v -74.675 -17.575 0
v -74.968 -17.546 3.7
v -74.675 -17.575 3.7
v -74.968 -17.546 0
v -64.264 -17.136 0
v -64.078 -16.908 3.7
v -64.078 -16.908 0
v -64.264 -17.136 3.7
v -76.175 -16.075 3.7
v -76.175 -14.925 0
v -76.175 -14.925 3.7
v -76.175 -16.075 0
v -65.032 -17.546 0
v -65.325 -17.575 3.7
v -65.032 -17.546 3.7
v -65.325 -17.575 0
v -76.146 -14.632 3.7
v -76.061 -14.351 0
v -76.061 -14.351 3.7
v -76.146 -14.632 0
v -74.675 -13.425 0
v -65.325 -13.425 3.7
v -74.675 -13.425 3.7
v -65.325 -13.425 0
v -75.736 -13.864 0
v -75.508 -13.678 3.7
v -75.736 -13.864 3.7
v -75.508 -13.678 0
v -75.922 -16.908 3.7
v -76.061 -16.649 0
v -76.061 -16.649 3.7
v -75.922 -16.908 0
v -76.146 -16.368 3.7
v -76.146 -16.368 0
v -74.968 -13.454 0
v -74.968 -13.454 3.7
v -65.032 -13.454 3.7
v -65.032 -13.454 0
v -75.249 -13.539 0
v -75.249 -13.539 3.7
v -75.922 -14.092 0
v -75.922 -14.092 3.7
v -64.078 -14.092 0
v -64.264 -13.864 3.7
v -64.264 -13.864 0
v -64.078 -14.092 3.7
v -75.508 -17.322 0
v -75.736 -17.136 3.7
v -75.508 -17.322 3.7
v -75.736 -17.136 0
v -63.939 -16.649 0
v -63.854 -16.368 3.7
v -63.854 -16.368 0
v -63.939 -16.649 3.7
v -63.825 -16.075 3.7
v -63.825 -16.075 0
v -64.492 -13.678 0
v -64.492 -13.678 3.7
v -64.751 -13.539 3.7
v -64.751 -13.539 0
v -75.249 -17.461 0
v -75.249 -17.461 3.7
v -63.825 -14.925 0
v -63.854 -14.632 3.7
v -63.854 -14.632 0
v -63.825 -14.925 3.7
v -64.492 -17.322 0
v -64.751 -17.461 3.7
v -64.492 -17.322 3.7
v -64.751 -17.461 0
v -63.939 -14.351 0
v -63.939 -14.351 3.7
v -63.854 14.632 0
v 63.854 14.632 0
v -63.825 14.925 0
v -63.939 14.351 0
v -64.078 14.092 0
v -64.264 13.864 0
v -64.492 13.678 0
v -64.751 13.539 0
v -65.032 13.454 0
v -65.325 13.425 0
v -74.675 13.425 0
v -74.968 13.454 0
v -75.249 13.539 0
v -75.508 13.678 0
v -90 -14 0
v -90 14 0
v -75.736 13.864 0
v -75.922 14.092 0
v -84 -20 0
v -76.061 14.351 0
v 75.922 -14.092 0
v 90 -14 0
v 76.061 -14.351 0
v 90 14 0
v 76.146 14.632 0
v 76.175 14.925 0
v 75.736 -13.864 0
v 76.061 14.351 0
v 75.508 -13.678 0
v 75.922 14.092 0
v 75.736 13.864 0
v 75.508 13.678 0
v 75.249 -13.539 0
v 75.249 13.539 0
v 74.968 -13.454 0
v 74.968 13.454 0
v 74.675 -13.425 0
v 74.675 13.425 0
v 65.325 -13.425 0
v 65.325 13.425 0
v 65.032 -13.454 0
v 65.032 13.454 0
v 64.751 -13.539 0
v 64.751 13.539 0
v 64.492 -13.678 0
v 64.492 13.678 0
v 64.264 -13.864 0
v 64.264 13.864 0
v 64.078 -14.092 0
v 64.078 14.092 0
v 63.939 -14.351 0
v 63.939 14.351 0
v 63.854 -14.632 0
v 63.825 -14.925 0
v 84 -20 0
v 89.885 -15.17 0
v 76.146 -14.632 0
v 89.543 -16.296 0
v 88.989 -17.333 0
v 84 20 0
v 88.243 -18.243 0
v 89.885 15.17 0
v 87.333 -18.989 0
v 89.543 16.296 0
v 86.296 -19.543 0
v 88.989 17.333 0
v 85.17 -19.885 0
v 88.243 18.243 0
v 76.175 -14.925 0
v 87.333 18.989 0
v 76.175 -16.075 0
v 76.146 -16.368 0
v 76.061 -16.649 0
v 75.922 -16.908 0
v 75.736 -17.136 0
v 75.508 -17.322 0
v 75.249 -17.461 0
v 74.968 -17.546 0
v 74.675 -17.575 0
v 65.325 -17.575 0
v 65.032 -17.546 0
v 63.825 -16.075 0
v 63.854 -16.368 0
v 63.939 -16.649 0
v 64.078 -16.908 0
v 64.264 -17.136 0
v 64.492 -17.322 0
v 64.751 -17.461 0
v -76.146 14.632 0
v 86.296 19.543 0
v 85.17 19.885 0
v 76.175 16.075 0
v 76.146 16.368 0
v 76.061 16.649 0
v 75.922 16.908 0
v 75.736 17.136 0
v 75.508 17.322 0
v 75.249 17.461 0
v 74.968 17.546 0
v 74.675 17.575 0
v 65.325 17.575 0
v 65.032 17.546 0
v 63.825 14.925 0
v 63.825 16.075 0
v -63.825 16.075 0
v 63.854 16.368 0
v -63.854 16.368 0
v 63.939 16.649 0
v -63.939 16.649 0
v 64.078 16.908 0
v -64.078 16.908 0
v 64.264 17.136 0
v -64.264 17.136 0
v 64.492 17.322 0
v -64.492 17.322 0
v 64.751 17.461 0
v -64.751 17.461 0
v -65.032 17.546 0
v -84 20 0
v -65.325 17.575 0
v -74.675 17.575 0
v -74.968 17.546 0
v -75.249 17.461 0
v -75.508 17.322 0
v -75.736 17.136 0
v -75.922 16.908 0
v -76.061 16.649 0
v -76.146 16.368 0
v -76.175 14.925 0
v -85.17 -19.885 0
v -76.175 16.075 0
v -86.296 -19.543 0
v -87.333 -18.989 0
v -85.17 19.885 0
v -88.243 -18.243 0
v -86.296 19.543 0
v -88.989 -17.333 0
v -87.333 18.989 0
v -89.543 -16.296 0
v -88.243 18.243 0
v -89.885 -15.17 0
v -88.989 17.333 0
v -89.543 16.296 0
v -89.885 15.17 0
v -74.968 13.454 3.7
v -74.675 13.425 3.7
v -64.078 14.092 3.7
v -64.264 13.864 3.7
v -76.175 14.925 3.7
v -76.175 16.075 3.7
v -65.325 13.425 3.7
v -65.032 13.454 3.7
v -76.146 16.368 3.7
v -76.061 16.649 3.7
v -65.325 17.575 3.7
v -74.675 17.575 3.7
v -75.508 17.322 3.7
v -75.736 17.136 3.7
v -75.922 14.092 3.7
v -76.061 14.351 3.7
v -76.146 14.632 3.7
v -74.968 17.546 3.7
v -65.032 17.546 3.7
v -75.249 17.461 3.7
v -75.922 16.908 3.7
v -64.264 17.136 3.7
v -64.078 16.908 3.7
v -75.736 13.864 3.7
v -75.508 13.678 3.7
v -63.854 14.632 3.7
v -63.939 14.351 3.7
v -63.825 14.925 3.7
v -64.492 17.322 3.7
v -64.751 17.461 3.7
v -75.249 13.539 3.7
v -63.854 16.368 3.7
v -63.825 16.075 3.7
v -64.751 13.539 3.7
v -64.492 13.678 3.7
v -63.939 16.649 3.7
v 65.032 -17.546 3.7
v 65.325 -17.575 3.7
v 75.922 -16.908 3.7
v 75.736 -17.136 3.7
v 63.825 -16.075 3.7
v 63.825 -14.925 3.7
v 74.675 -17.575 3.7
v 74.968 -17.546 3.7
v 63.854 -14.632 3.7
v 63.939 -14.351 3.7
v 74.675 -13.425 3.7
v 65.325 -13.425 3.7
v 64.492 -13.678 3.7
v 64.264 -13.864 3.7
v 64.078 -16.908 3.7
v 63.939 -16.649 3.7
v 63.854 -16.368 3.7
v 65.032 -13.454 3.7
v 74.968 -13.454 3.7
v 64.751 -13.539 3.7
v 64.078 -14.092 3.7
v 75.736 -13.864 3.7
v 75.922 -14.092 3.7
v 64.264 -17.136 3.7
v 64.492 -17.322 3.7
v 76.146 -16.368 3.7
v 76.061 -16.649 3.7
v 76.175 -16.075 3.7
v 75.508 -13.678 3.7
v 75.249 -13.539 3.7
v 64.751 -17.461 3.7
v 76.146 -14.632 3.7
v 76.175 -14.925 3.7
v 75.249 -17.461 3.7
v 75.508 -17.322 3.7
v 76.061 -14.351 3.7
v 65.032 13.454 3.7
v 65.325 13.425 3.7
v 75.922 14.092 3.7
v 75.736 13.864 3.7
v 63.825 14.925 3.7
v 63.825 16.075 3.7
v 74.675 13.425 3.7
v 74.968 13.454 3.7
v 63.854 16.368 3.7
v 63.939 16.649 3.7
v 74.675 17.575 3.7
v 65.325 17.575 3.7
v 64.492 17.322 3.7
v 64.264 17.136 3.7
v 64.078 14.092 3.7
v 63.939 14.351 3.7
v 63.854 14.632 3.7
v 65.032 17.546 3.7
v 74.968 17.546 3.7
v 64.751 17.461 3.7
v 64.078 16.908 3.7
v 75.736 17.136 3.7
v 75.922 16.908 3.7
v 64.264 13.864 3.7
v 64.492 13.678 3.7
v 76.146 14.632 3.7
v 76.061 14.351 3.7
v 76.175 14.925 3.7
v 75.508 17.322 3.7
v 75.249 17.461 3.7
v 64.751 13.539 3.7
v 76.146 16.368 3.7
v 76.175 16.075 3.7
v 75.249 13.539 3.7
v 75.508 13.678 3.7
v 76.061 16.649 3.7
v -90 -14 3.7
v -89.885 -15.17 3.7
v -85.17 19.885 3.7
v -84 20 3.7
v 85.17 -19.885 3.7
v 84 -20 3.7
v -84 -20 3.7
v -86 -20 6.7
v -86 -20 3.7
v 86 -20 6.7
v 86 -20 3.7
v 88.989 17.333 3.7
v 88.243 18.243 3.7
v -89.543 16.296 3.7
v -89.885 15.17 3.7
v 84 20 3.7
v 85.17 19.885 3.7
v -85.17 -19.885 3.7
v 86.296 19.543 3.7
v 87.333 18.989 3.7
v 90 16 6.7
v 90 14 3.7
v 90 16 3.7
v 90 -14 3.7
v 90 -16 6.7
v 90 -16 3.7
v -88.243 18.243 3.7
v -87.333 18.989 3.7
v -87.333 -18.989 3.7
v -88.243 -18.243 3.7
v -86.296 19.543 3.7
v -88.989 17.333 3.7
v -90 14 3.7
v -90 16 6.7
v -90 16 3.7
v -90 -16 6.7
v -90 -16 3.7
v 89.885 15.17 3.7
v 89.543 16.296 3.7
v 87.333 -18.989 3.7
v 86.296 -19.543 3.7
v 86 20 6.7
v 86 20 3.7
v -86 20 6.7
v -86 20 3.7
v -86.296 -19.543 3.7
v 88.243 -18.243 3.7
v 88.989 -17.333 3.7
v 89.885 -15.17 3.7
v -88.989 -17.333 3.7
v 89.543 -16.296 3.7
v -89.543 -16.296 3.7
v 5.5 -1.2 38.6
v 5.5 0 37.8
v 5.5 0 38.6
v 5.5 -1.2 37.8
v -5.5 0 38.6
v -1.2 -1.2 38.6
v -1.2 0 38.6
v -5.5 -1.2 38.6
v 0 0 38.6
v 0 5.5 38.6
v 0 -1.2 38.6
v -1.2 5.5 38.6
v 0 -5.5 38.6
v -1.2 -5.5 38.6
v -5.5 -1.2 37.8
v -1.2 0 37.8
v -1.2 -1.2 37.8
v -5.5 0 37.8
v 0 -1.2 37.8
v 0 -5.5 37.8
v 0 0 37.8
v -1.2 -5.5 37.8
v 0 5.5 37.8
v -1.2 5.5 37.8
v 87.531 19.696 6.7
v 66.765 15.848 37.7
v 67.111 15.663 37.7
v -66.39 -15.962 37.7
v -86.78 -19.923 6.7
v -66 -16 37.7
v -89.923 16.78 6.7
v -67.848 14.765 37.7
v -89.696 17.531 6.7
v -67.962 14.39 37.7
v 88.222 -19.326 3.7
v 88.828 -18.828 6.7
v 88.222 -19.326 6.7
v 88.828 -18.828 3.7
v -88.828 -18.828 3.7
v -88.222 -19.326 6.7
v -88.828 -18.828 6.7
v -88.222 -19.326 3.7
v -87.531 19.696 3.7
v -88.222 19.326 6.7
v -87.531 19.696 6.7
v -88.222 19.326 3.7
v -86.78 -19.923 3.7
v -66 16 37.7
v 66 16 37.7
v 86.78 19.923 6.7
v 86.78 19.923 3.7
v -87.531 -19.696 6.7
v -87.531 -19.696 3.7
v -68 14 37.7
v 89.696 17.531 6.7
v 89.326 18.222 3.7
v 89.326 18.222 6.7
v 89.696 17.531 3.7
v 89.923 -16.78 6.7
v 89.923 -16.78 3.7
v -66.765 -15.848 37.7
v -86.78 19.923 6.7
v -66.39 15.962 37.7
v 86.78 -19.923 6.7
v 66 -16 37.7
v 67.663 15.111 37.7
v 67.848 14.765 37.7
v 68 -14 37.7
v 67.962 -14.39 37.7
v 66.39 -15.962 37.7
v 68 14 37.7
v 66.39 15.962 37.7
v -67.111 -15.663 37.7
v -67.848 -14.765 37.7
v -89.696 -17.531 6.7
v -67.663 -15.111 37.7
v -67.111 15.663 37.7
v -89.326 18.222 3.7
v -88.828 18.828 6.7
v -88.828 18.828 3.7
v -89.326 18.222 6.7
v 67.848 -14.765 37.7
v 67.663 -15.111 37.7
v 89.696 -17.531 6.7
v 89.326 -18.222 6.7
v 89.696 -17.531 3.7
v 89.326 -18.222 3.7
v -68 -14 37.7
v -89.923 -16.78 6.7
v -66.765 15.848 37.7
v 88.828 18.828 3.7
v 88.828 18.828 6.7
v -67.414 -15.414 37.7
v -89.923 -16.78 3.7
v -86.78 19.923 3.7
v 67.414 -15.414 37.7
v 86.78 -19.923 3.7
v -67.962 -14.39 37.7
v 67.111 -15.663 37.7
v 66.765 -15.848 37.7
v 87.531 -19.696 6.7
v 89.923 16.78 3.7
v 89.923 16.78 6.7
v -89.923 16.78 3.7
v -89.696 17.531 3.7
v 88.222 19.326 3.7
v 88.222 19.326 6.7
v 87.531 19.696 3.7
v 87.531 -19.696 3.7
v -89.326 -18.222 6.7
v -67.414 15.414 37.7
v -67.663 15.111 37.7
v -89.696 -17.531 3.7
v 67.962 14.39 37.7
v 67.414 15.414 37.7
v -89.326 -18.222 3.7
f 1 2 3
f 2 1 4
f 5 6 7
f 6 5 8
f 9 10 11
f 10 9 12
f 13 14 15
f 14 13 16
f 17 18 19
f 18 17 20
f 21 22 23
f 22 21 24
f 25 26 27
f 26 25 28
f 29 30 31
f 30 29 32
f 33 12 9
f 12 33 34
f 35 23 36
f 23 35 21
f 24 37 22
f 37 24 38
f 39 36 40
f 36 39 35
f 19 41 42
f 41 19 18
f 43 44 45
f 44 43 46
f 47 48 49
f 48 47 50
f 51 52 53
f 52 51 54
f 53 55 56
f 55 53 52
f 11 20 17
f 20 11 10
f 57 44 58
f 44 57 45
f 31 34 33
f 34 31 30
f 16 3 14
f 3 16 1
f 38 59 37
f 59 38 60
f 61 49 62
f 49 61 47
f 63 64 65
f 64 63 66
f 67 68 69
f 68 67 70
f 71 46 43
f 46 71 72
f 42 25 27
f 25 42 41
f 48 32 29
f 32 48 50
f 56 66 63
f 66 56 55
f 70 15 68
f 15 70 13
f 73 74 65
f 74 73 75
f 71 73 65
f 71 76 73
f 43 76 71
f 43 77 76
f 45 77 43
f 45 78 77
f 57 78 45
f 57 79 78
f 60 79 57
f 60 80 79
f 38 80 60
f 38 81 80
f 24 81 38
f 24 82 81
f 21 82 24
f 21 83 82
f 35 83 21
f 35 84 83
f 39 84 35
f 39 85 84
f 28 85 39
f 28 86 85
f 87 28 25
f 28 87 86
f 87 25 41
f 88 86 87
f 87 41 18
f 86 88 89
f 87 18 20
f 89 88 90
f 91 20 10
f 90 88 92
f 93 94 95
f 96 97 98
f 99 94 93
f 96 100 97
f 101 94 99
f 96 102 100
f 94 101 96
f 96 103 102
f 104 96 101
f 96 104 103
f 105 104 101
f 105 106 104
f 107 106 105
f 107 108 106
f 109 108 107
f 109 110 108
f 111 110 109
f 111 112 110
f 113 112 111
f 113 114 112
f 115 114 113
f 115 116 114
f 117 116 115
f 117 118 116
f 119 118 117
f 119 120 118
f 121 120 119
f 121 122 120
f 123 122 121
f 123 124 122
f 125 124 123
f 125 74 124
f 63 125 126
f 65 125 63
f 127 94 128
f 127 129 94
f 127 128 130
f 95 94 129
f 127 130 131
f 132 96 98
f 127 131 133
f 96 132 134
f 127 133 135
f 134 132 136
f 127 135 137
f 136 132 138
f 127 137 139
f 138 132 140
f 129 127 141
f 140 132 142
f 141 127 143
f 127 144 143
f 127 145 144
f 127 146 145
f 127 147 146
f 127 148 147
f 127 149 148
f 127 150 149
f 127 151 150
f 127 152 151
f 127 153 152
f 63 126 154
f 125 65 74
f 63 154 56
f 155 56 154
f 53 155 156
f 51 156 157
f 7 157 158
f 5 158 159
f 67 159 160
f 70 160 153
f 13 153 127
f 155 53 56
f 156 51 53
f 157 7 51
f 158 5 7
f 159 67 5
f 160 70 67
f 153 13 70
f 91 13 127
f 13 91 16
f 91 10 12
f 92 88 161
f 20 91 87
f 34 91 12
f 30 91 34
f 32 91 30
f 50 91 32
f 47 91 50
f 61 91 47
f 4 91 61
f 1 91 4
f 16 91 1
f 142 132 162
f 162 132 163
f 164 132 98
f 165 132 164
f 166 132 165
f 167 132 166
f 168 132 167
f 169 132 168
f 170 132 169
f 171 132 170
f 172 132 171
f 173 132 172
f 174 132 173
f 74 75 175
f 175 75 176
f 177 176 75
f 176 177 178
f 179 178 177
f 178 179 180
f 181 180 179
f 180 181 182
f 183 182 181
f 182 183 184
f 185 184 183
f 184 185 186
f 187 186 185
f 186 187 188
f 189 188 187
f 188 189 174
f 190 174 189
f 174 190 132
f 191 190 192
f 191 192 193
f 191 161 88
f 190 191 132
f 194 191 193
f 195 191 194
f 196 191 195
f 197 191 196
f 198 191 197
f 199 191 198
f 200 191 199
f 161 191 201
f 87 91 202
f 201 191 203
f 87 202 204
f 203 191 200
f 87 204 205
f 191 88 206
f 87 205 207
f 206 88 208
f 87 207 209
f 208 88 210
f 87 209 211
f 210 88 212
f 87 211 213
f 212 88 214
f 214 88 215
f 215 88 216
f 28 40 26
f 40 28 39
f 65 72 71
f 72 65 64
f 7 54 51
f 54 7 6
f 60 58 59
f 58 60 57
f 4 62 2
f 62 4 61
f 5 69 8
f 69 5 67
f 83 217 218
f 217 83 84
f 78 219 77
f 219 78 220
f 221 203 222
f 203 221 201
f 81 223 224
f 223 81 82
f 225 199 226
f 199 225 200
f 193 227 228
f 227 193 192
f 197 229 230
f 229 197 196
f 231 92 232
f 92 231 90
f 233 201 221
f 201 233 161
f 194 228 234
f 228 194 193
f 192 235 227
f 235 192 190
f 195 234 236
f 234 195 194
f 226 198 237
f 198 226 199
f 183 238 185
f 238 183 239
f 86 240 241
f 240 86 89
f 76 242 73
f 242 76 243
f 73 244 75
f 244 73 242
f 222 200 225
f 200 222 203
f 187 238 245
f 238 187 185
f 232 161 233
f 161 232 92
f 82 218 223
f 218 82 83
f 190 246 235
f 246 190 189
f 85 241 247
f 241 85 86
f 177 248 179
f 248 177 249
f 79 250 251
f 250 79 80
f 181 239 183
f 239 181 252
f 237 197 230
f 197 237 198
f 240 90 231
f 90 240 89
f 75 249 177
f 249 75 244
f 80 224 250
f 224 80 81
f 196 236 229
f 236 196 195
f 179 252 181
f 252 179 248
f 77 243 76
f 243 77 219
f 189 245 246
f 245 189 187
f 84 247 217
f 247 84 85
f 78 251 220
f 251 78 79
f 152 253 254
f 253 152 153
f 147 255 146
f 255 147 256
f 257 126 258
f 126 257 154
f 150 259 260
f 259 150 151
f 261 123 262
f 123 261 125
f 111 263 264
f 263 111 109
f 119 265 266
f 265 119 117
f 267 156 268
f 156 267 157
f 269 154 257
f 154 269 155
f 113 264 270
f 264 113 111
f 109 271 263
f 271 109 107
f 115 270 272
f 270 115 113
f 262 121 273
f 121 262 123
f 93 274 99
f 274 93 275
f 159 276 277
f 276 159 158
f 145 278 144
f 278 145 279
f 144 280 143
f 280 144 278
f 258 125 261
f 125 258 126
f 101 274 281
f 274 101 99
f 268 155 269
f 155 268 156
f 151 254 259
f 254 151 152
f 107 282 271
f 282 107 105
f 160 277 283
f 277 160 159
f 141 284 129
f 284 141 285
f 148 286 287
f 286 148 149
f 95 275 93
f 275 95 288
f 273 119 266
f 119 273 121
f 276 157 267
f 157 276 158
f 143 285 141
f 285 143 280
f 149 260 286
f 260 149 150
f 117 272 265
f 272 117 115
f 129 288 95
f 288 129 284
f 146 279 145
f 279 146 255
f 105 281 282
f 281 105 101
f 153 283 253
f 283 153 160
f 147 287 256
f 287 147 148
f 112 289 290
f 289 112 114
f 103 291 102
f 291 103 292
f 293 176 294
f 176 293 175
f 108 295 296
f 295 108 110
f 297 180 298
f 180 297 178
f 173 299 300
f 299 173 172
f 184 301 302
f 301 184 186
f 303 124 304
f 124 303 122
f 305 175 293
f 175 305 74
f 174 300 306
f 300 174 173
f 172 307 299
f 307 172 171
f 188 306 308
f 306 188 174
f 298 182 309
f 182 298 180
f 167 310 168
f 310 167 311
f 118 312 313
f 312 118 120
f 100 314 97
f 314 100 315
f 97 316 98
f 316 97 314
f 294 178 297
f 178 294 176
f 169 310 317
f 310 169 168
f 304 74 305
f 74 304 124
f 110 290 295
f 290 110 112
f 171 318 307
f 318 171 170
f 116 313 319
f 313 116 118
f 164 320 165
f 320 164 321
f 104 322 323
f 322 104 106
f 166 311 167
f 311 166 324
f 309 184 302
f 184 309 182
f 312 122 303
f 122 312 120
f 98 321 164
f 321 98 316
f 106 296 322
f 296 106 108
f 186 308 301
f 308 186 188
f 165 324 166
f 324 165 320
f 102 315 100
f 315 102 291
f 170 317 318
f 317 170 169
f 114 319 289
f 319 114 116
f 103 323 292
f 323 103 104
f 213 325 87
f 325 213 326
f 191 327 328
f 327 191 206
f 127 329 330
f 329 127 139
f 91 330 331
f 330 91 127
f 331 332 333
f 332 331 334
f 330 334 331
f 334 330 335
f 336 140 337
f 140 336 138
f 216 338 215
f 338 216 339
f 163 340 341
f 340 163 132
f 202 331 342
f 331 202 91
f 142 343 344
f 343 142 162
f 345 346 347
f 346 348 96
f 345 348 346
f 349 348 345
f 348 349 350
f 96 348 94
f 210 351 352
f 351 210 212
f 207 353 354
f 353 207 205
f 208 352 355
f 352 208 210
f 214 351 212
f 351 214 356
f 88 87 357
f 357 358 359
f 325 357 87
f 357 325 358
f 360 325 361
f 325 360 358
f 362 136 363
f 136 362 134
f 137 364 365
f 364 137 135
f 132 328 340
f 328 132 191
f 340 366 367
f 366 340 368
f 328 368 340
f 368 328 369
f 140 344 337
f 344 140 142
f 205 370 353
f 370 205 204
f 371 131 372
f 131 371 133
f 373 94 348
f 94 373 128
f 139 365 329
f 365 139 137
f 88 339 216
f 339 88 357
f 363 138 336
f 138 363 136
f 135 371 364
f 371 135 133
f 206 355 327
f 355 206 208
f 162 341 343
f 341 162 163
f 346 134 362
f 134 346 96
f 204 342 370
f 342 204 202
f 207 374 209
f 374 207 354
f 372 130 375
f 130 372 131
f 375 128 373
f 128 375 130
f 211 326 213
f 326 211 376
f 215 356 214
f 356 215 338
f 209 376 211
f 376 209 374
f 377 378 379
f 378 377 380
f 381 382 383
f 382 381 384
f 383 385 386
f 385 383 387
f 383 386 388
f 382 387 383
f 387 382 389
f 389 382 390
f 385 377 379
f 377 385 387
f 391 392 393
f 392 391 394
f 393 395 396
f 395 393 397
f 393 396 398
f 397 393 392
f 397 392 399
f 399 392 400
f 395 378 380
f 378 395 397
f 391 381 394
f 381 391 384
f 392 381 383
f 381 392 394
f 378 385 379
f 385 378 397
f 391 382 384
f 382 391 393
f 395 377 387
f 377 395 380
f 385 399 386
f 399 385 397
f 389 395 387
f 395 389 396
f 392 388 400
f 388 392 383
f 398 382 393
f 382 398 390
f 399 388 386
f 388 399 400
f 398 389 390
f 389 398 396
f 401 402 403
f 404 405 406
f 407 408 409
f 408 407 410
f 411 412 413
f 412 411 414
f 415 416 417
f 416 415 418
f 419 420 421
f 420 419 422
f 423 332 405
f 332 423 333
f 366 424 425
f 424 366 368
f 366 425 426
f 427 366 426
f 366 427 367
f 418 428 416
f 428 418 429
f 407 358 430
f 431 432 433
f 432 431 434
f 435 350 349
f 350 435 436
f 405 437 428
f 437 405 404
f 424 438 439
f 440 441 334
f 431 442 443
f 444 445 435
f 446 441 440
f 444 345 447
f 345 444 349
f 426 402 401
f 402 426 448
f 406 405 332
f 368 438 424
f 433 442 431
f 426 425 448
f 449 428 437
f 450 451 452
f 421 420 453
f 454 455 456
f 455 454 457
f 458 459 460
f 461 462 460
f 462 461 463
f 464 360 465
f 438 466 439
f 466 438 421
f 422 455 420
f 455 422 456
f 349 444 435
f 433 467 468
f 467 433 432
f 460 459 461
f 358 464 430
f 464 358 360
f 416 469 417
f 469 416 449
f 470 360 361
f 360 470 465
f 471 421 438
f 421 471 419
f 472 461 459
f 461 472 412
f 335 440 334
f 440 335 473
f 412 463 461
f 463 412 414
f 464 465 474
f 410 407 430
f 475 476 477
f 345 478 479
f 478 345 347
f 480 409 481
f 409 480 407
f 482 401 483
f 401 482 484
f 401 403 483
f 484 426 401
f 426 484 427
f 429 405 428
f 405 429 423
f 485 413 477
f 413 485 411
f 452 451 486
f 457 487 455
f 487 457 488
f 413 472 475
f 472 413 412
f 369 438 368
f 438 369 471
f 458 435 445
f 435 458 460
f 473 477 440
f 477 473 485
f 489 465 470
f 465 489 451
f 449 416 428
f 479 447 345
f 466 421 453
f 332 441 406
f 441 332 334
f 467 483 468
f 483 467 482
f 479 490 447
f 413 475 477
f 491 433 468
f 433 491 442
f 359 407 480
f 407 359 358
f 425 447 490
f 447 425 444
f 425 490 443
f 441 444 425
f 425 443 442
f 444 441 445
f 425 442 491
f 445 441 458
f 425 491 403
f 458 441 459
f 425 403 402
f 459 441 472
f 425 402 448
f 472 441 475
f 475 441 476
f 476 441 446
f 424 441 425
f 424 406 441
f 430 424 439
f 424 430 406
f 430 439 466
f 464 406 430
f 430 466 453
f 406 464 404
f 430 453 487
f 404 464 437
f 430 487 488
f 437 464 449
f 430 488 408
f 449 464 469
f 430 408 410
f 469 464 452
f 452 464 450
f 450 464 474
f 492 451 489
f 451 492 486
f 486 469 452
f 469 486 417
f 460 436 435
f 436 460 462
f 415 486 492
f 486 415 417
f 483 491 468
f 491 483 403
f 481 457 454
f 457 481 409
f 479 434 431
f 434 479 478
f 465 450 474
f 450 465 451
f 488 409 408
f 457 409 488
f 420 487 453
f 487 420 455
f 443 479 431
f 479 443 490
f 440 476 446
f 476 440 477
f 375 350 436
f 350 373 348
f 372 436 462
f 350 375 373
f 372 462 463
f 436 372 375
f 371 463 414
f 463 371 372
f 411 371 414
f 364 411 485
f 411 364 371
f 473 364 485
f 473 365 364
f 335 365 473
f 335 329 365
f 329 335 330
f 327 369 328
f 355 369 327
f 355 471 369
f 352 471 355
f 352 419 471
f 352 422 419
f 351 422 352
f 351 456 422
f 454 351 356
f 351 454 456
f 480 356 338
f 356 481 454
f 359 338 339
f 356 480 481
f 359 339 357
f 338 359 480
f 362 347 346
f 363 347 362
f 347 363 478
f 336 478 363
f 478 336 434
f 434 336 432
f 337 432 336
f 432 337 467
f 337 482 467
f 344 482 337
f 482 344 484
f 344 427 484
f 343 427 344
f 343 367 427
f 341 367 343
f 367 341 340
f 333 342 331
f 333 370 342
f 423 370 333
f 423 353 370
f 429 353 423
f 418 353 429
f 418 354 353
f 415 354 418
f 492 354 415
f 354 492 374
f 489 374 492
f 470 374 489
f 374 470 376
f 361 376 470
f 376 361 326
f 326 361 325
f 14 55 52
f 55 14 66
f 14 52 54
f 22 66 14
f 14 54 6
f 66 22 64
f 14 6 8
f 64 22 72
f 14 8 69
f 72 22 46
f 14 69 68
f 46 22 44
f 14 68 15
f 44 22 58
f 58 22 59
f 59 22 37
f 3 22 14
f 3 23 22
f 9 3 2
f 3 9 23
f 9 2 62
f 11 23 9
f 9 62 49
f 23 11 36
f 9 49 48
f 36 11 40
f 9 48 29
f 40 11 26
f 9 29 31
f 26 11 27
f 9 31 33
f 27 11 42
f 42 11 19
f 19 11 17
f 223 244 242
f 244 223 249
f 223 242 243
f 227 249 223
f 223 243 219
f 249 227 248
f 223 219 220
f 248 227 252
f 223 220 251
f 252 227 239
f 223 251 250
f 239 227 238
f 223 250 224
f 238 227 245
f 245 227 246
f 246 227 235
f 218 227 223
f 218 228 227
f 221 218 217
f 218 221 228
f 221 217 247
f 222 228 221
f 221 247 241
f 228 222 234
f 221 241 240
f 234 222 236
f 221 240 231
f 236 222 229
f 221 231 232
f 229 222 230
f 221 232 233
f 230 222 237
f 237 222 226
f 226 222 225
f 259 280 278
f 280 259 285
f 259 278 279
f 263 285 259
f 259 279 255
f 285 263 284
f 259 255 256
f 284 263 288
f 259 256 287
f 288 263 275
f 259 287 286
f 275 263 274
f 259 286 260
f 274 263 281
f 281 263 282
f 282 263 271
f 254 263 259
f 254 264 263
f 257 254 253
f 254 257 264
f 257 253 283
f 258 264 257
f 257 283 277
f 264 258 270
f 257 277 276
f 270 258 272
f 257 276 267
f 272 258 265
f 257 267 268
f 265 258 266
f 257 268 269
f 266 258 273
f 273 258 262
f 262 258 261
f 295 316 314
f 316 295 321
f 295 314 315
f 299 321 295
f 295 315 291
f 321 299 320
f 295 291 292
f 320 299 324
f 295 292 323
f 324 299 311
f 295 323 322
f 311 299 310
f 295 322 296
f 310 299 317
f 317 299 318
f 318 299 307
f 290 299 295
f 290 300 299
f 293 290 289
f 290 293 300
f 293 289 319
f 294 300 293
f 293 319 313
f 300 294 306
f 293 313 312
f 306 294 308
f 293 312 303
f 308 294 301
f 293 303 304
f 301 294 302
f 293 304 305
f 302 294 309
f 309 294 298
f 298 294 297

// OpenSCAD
include <../s1_parameters.scad>

build_part = "full";

module commuter_pod_full() {
  union() {
    s1_interface_plate_full_placeholder();
    translate([0, 0, s1_module_interface_height - 0.3])
      aerodynamic_pod_shell(s1_module_length, s1_module_width, s1_commuter_pod_height, nose = 22, roof_inset = 8, radius = 4);
    for (x = [-54, -18, 18, 54])
      translate([s1_scaled_feature(x), s1_module_width / 2 - 5.2, s1_scaled_pod_z(20, s1_commuter_pod_height, 34)])
        rounded_box([s1_scaled_feature_size(20), 1.3, s1_scaled_pod_size(9, s1_commuter_pod_height, 34)], 1.4);
    for (x = [-54, -18, 18, 54])
      translate([s1_scaled_feature(x), -s1_module_width / 2 + 5.2, s1_scaled_pod_z(20, s1_commuter_pod_height, 34)])
        rounded_box([s1_scaled_feature_size(20), 1.3, s1_scaled_pod_size(9, s1_commuter_pod_height, 34)], 1.4);
    side_panel_breaks(s1_module_length - s1_scaled_feature_size(28), s1_module_width, s1_scaled_pod_z(15, s1_commuter_pod_height, 34), s1_scaled_pod_size(7, s1_commuter_pod_height, 34));
    cg_marker(s1_module_interface_height + s1_commuter_pod_height + 0.2, 11);
  }
}

module s1_interface_plate_full_placeholder() {
  module_interface_base(cutout_height = 14);
}

module commuter_pod_part() {
  if (build_part == "front")
    difference() {
      render(convexity = 10) intersection() { commuter_pod_full(); split_front_clip(s1_module_length, s1_module_width + 30, s1_module_interface_height + s1_commuter_pod_height + 70); }
      split_alignment_sockets("front", z = 0.5);
    }
  else if (build_part == "rear")
    difference() {
      render(convexity = 10) intersection() { commuter_pod_full(); split_rear_clip(s1_module_length, s1_module_width + 30, s1_module_interface_height + s1_commuter_pod_height + 70); }
      split_alignment_sockets("rear", z = 0.5);
    }
  else
    commuter_pod_full();
}

commuter_pod_part();
